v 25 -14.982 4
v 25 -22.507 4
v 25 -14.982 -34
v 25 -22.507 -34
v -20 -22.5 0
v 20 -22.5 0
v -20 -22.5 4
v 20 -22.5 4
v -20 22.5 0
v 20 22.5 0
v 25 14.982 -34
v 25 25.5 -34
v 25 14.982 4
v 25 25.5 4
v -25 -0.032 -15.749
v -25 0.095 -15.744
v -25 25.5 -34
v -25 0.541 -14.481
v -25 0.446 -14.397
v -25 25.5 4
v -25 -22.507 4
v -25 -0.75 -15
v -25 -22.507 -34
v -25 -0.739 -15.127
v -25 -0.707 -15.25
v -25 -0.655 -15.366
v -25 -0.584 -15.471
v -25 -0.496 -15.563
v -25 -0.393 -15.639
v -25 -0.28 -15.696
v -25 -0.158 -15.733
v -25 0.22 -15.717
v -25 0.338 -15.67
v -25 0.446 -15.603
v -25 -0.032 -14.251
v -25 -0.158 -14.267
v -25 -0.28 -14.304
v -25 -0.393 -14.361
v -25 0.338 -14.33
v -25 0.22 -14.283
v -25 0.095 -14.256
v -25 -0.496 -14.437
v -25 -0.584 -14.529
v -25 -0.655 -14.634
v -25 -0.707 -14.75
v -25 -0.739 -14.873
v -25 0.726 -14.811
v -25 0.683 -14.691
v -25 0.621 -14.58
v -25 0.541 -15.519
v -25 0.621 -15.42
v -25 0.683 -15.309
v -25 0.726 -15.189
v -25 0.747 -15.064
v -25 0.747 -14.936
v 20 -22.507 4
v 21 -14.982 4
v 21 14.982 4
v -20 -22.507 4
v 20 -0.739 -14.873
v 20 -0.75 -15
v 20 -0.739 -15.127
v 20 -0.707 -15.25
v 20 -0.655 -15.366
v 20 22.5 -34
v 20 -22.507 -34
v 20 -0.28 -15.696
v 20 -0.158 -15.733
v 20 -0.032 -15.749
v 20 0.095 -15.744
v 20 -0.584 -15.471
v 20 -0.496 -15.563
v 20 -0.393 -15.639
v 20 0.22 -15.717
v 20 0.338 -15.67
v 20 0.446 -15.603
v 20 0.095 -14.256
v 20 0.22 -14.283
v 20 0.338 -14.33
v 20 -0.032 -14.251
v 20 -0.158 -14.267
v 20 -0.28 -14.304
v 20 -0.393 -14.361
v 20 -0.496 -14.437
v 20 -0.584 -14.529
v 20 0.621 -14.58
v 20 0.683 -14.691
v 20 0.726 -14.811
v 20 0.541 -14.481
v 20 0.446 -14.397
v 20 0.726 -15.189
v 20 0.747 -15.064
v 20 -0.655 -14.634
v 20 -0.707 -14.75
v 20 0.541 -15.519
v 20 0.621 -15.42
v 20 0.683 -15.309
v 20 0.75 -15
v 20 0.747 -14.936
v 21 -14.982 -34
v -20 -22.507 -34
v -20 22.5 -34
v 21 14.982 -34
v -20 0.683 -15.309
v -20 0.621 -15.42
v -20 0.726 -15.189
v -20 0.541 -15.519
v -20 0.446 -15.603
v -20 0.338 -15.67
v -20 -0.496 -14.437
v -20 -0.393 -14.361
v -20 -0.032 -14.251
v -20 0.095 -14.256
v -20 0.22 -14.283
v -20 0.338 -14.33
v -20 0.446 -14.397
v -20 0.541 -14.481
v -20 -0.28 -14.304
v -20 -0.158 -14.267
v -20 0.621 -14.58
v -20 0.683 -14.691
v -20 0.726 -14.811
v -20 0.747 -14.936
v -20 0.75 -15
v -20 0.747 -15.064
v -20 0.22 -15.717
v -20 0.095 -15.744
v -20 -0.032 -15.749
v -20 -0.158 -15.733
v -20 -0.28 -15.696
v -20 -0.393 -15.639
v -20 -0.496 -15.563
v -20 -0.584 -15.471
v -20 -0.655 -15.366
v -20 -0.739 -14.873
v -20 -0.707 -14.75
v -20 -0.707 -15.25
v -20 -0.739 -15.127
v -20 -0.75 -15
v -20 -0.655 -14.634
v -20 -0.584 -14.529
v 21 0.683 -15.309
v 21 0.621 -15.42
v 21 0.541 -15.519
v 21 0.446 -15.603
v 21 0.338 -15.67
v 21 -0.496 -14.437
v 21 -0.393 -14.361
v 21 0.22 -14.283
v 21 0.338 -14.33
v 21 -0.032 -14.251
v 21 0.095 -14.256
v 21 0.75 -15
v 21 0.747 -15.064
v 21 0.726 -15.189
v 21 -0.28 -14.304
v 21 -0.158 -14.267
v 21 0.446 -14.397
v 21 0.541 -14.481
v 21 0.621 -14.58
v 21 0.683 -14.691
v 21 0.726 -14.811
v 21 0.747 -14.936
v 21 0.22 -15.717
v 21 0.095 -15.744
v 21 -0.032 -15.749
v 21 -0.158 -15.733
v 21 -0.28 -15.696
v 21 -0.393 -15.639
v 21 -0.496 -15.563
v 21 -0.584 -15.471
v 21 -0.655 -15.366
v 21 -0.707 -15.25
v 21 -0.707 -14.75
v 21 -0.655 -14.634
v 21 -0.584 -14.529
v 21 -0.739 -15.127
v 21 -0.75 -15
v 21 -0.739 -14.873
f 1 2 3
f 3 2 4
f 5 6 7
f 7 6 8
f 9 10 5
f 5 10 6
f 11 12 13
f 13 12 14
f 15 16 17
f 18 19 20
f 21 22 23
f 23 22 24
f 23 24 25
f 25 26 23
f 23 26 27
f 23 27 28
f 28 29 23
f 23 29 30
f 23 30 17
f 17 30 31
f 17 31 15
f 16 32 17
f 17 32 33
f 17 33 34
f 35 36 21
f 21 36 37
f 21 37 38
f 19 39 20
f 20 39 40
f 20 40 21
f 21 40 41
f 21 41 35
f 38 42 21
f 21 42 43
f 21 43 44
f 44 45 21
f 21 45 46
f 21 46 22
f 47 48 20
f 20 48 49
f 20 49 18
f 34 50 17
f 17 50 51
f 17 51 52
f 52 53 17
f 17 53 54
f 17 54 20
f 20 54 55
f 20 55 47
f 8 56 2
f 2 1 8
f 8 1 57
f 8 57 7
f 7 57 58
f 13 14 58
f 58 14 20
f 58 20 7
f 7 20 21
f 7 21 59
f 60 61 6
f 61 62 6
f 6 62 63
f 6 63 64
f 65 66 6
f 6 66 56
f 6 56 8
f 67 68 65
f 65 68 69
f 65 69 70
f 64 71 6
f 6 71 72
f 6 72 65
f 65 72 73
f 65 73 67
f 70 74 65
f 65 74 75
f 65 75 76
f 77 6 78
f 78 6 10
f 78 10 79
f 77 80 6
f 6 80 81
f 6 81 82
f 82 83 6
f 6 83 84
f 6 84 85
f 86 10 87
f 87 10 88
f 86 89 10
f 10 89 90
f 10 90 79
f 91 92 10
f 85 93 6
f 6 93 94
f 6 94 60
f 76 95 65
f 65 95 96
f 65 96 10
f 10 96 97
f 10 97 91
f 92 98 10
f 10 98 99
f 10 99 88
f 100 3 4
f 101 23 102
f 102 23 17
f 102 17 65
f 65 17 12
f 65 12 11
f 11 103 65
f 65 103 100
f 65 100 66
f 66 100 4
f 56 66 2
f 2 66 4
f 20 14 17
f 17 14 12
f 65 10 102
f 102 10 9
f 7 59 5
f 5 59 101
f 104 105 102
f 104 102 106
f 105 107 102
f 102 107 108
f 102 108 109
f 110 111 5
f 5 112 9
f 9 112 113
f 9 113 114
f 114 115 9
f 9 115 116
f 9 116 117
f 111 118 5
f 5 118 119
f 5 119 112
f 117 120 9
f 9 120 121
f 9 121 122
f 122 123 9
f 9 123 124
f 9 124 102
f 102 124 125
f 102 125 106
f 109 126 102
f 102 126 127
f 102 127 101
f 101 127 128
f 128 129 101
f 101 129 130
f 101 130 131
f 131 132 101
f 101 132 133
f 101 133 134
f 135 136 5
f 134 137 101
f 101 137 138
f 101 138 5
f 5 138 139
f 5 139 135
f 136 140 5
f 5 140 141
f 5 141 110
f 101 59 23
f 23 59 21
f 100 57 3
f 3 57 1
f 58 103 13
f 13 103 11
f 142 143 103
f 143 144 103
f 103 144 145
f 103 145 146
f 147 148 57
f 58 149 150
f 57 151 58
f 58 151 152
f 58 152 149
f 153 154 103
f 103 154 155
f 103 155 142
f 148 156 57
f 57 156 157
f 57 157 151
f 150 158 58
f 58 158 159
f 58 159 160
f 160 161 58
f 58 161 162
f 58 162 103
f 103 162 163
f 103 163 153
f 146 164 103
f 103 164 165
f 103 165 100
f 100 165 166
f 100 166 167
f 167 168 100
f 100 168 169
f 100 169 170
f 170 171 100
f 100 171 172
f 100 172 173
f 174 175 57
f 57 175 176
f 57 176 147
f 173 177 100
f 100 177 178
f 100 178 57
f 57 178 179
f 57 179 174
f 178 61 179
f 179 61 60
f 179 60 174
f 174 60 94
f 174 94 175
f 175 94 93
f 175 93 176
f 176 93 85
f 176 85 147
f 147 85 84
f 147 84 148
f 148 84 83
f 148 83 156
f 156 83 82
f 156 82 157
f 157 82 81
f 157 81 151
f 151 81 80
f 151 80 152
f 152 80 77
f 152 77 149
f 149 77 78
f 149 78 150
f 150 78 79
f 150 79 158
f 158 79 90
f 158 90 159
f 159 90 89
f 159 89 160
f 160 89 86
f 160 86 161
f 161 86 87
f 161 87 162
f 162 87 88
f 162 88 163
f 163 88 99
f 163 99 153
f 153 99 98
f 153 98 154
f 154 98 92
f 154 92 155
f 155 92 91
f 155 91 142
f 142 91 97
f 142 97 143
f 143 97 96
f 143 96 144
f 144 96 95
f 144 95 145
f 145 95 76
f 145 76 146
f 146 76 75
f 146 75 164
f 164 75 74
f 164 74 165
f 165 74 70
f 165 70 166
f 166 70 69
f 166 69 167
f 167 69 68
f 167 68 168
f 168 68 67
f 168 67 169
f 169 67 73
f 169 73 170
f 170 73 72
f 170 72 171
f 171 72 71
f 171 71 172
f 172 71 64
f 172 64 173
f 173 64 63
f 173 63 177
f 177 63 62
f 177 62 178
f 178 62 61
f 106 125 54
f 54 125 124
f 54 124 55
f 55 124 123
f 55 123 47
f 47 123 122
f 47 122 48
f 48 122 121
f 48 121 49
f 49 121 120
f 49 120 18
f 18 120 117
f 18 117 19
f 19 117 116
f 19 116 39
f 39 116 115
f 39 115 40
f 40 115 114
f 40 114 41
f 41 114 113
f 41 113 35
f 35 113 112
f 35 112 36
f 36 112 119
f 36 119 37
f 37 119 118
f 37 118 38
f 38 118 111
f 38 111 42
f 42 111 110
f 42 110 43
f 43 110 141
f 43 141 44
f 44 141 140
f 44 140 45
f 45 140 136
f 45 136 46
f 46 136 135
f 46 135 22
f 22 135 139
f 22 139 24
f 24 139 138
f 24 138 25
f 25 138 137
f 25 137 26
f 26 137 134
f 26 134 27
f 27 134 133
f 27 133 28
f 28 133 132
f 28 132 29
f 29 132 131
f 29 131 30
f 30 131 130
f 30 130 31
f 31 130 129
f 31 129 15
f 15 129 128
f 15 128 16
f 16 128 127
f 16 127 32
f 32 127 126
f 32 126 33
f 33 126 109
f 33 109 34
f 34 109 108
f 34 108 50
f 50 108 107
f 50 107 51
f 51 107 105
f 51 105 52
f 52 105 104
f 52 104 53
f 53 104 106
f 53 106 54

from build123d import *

# Parameters (mm, degrees)
SKETCH1_W           = 50
SKETCH1_H           = 45
BOSS_EXTRUDE1_DEPTH = 4
SKETCH2_W           = 38
SKETCH2_H           = 45.007332522
BOSS_EXTRUDE2_DEPTH = 5
SKETCH3_W           = 50
SKETCH3_H           = 38
BOSS_EXTRUDE3_DEPTH = 3
SKETCH4_W           = 38
SKETCH4_H           = 48.007332522
BOSS_EXTRUDE4_DEPTH = 5
SKETCH5_W           = 38
SKETCH5_H           = 29.964277952
CUT_EXTRUDE3_DEPTH  = 4
SKETCH7_R           = 0.75
CUT_EXTRUDE4_DEPTH  = 54


with BuildPart() as part:
    # Sketch1 → Boss-Extrude1 (new body)
    with BuildSketch(Plane.XY):
        Rectangle(SKETCH1_W, SKETCH1_H)
    extrude(amount=BOSS_EXTRUDE1_DEPTH)

    # Sketch2 → Boss-Extrude2 (add)
    with BuildSketch(Plane(origin=(25, 0, 0), x_dir=(0, 0, -1), z_dir=(1, 0, 0))):
        with Locations((15, -0.003666261)):
            Rectangle(SKETCH2_W, SKETCH2_H)
    extrude(amount=-BOSS_EXTRUDE2_DEPTH)

    # Sketch3 → Boss-Extrude3 (add)
    with BuildSketch(Plane(origin=(0, 22.5, 0), x_dir=(1, 0, 0), z_dir=(0, 1, 0))):
        with Locations((0, 15)):
            Rectangle(SKETCH3_W, SKETCH3_H)
    extrude(amount=BOSS_EXTRUDE3_DEPTH)

    # Sketch4 → Boss-Extrude4 (add)
    with BuildSketch(Plane.ZY.offset(25)):
        with Locations((-15, 1.496333739)):
            Rectangle(SKETCH4_W, SKETCH4_H)
    extrude(amount=-BOSS_EXTRUDE4_DEPTH)

    # Sketch5 → Cut-Extrude3 (cut)
    with BuildSketch(Plane(origin=(25, 0, 0), x_dir=(0, 0, -1), z_dir=(1, 0, 0))):
        with Locations((15, 0)):
            Rectangle(SKETCH5_W, SKETCH5_H)
    extrude(amount=-CUT_EXTRUDE3_DEPTH, mode=Mode.SUBTRACT)

    # Sketch7 → Cut-Extrude4 (cut)
    with BuildSketch(Plane.ZY.offset(25)):
        with Locations(Location((-15, 0, 0), (0, 0, 90))):
            Circle(SKETCH7_R)
    extrude(amount=-CUT_EXTRUDE4_DEPTH, mode=Mode.SUBTRACT)


solid = part.part
